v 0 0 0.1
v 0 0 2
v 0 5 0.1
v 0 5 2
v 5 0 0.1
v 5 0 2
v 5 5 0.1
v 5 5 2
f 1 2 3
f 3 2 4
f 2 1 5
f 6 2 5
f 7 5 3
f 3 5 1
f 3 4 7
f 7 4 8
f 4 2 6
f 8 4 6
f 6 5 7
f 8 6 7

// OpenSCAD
module example001()
{
	difference(){
		cube([5,5,2]);
		translate(0,1.5,0);
	 	cube([5,5,0.1]);
	}
}
example001();
